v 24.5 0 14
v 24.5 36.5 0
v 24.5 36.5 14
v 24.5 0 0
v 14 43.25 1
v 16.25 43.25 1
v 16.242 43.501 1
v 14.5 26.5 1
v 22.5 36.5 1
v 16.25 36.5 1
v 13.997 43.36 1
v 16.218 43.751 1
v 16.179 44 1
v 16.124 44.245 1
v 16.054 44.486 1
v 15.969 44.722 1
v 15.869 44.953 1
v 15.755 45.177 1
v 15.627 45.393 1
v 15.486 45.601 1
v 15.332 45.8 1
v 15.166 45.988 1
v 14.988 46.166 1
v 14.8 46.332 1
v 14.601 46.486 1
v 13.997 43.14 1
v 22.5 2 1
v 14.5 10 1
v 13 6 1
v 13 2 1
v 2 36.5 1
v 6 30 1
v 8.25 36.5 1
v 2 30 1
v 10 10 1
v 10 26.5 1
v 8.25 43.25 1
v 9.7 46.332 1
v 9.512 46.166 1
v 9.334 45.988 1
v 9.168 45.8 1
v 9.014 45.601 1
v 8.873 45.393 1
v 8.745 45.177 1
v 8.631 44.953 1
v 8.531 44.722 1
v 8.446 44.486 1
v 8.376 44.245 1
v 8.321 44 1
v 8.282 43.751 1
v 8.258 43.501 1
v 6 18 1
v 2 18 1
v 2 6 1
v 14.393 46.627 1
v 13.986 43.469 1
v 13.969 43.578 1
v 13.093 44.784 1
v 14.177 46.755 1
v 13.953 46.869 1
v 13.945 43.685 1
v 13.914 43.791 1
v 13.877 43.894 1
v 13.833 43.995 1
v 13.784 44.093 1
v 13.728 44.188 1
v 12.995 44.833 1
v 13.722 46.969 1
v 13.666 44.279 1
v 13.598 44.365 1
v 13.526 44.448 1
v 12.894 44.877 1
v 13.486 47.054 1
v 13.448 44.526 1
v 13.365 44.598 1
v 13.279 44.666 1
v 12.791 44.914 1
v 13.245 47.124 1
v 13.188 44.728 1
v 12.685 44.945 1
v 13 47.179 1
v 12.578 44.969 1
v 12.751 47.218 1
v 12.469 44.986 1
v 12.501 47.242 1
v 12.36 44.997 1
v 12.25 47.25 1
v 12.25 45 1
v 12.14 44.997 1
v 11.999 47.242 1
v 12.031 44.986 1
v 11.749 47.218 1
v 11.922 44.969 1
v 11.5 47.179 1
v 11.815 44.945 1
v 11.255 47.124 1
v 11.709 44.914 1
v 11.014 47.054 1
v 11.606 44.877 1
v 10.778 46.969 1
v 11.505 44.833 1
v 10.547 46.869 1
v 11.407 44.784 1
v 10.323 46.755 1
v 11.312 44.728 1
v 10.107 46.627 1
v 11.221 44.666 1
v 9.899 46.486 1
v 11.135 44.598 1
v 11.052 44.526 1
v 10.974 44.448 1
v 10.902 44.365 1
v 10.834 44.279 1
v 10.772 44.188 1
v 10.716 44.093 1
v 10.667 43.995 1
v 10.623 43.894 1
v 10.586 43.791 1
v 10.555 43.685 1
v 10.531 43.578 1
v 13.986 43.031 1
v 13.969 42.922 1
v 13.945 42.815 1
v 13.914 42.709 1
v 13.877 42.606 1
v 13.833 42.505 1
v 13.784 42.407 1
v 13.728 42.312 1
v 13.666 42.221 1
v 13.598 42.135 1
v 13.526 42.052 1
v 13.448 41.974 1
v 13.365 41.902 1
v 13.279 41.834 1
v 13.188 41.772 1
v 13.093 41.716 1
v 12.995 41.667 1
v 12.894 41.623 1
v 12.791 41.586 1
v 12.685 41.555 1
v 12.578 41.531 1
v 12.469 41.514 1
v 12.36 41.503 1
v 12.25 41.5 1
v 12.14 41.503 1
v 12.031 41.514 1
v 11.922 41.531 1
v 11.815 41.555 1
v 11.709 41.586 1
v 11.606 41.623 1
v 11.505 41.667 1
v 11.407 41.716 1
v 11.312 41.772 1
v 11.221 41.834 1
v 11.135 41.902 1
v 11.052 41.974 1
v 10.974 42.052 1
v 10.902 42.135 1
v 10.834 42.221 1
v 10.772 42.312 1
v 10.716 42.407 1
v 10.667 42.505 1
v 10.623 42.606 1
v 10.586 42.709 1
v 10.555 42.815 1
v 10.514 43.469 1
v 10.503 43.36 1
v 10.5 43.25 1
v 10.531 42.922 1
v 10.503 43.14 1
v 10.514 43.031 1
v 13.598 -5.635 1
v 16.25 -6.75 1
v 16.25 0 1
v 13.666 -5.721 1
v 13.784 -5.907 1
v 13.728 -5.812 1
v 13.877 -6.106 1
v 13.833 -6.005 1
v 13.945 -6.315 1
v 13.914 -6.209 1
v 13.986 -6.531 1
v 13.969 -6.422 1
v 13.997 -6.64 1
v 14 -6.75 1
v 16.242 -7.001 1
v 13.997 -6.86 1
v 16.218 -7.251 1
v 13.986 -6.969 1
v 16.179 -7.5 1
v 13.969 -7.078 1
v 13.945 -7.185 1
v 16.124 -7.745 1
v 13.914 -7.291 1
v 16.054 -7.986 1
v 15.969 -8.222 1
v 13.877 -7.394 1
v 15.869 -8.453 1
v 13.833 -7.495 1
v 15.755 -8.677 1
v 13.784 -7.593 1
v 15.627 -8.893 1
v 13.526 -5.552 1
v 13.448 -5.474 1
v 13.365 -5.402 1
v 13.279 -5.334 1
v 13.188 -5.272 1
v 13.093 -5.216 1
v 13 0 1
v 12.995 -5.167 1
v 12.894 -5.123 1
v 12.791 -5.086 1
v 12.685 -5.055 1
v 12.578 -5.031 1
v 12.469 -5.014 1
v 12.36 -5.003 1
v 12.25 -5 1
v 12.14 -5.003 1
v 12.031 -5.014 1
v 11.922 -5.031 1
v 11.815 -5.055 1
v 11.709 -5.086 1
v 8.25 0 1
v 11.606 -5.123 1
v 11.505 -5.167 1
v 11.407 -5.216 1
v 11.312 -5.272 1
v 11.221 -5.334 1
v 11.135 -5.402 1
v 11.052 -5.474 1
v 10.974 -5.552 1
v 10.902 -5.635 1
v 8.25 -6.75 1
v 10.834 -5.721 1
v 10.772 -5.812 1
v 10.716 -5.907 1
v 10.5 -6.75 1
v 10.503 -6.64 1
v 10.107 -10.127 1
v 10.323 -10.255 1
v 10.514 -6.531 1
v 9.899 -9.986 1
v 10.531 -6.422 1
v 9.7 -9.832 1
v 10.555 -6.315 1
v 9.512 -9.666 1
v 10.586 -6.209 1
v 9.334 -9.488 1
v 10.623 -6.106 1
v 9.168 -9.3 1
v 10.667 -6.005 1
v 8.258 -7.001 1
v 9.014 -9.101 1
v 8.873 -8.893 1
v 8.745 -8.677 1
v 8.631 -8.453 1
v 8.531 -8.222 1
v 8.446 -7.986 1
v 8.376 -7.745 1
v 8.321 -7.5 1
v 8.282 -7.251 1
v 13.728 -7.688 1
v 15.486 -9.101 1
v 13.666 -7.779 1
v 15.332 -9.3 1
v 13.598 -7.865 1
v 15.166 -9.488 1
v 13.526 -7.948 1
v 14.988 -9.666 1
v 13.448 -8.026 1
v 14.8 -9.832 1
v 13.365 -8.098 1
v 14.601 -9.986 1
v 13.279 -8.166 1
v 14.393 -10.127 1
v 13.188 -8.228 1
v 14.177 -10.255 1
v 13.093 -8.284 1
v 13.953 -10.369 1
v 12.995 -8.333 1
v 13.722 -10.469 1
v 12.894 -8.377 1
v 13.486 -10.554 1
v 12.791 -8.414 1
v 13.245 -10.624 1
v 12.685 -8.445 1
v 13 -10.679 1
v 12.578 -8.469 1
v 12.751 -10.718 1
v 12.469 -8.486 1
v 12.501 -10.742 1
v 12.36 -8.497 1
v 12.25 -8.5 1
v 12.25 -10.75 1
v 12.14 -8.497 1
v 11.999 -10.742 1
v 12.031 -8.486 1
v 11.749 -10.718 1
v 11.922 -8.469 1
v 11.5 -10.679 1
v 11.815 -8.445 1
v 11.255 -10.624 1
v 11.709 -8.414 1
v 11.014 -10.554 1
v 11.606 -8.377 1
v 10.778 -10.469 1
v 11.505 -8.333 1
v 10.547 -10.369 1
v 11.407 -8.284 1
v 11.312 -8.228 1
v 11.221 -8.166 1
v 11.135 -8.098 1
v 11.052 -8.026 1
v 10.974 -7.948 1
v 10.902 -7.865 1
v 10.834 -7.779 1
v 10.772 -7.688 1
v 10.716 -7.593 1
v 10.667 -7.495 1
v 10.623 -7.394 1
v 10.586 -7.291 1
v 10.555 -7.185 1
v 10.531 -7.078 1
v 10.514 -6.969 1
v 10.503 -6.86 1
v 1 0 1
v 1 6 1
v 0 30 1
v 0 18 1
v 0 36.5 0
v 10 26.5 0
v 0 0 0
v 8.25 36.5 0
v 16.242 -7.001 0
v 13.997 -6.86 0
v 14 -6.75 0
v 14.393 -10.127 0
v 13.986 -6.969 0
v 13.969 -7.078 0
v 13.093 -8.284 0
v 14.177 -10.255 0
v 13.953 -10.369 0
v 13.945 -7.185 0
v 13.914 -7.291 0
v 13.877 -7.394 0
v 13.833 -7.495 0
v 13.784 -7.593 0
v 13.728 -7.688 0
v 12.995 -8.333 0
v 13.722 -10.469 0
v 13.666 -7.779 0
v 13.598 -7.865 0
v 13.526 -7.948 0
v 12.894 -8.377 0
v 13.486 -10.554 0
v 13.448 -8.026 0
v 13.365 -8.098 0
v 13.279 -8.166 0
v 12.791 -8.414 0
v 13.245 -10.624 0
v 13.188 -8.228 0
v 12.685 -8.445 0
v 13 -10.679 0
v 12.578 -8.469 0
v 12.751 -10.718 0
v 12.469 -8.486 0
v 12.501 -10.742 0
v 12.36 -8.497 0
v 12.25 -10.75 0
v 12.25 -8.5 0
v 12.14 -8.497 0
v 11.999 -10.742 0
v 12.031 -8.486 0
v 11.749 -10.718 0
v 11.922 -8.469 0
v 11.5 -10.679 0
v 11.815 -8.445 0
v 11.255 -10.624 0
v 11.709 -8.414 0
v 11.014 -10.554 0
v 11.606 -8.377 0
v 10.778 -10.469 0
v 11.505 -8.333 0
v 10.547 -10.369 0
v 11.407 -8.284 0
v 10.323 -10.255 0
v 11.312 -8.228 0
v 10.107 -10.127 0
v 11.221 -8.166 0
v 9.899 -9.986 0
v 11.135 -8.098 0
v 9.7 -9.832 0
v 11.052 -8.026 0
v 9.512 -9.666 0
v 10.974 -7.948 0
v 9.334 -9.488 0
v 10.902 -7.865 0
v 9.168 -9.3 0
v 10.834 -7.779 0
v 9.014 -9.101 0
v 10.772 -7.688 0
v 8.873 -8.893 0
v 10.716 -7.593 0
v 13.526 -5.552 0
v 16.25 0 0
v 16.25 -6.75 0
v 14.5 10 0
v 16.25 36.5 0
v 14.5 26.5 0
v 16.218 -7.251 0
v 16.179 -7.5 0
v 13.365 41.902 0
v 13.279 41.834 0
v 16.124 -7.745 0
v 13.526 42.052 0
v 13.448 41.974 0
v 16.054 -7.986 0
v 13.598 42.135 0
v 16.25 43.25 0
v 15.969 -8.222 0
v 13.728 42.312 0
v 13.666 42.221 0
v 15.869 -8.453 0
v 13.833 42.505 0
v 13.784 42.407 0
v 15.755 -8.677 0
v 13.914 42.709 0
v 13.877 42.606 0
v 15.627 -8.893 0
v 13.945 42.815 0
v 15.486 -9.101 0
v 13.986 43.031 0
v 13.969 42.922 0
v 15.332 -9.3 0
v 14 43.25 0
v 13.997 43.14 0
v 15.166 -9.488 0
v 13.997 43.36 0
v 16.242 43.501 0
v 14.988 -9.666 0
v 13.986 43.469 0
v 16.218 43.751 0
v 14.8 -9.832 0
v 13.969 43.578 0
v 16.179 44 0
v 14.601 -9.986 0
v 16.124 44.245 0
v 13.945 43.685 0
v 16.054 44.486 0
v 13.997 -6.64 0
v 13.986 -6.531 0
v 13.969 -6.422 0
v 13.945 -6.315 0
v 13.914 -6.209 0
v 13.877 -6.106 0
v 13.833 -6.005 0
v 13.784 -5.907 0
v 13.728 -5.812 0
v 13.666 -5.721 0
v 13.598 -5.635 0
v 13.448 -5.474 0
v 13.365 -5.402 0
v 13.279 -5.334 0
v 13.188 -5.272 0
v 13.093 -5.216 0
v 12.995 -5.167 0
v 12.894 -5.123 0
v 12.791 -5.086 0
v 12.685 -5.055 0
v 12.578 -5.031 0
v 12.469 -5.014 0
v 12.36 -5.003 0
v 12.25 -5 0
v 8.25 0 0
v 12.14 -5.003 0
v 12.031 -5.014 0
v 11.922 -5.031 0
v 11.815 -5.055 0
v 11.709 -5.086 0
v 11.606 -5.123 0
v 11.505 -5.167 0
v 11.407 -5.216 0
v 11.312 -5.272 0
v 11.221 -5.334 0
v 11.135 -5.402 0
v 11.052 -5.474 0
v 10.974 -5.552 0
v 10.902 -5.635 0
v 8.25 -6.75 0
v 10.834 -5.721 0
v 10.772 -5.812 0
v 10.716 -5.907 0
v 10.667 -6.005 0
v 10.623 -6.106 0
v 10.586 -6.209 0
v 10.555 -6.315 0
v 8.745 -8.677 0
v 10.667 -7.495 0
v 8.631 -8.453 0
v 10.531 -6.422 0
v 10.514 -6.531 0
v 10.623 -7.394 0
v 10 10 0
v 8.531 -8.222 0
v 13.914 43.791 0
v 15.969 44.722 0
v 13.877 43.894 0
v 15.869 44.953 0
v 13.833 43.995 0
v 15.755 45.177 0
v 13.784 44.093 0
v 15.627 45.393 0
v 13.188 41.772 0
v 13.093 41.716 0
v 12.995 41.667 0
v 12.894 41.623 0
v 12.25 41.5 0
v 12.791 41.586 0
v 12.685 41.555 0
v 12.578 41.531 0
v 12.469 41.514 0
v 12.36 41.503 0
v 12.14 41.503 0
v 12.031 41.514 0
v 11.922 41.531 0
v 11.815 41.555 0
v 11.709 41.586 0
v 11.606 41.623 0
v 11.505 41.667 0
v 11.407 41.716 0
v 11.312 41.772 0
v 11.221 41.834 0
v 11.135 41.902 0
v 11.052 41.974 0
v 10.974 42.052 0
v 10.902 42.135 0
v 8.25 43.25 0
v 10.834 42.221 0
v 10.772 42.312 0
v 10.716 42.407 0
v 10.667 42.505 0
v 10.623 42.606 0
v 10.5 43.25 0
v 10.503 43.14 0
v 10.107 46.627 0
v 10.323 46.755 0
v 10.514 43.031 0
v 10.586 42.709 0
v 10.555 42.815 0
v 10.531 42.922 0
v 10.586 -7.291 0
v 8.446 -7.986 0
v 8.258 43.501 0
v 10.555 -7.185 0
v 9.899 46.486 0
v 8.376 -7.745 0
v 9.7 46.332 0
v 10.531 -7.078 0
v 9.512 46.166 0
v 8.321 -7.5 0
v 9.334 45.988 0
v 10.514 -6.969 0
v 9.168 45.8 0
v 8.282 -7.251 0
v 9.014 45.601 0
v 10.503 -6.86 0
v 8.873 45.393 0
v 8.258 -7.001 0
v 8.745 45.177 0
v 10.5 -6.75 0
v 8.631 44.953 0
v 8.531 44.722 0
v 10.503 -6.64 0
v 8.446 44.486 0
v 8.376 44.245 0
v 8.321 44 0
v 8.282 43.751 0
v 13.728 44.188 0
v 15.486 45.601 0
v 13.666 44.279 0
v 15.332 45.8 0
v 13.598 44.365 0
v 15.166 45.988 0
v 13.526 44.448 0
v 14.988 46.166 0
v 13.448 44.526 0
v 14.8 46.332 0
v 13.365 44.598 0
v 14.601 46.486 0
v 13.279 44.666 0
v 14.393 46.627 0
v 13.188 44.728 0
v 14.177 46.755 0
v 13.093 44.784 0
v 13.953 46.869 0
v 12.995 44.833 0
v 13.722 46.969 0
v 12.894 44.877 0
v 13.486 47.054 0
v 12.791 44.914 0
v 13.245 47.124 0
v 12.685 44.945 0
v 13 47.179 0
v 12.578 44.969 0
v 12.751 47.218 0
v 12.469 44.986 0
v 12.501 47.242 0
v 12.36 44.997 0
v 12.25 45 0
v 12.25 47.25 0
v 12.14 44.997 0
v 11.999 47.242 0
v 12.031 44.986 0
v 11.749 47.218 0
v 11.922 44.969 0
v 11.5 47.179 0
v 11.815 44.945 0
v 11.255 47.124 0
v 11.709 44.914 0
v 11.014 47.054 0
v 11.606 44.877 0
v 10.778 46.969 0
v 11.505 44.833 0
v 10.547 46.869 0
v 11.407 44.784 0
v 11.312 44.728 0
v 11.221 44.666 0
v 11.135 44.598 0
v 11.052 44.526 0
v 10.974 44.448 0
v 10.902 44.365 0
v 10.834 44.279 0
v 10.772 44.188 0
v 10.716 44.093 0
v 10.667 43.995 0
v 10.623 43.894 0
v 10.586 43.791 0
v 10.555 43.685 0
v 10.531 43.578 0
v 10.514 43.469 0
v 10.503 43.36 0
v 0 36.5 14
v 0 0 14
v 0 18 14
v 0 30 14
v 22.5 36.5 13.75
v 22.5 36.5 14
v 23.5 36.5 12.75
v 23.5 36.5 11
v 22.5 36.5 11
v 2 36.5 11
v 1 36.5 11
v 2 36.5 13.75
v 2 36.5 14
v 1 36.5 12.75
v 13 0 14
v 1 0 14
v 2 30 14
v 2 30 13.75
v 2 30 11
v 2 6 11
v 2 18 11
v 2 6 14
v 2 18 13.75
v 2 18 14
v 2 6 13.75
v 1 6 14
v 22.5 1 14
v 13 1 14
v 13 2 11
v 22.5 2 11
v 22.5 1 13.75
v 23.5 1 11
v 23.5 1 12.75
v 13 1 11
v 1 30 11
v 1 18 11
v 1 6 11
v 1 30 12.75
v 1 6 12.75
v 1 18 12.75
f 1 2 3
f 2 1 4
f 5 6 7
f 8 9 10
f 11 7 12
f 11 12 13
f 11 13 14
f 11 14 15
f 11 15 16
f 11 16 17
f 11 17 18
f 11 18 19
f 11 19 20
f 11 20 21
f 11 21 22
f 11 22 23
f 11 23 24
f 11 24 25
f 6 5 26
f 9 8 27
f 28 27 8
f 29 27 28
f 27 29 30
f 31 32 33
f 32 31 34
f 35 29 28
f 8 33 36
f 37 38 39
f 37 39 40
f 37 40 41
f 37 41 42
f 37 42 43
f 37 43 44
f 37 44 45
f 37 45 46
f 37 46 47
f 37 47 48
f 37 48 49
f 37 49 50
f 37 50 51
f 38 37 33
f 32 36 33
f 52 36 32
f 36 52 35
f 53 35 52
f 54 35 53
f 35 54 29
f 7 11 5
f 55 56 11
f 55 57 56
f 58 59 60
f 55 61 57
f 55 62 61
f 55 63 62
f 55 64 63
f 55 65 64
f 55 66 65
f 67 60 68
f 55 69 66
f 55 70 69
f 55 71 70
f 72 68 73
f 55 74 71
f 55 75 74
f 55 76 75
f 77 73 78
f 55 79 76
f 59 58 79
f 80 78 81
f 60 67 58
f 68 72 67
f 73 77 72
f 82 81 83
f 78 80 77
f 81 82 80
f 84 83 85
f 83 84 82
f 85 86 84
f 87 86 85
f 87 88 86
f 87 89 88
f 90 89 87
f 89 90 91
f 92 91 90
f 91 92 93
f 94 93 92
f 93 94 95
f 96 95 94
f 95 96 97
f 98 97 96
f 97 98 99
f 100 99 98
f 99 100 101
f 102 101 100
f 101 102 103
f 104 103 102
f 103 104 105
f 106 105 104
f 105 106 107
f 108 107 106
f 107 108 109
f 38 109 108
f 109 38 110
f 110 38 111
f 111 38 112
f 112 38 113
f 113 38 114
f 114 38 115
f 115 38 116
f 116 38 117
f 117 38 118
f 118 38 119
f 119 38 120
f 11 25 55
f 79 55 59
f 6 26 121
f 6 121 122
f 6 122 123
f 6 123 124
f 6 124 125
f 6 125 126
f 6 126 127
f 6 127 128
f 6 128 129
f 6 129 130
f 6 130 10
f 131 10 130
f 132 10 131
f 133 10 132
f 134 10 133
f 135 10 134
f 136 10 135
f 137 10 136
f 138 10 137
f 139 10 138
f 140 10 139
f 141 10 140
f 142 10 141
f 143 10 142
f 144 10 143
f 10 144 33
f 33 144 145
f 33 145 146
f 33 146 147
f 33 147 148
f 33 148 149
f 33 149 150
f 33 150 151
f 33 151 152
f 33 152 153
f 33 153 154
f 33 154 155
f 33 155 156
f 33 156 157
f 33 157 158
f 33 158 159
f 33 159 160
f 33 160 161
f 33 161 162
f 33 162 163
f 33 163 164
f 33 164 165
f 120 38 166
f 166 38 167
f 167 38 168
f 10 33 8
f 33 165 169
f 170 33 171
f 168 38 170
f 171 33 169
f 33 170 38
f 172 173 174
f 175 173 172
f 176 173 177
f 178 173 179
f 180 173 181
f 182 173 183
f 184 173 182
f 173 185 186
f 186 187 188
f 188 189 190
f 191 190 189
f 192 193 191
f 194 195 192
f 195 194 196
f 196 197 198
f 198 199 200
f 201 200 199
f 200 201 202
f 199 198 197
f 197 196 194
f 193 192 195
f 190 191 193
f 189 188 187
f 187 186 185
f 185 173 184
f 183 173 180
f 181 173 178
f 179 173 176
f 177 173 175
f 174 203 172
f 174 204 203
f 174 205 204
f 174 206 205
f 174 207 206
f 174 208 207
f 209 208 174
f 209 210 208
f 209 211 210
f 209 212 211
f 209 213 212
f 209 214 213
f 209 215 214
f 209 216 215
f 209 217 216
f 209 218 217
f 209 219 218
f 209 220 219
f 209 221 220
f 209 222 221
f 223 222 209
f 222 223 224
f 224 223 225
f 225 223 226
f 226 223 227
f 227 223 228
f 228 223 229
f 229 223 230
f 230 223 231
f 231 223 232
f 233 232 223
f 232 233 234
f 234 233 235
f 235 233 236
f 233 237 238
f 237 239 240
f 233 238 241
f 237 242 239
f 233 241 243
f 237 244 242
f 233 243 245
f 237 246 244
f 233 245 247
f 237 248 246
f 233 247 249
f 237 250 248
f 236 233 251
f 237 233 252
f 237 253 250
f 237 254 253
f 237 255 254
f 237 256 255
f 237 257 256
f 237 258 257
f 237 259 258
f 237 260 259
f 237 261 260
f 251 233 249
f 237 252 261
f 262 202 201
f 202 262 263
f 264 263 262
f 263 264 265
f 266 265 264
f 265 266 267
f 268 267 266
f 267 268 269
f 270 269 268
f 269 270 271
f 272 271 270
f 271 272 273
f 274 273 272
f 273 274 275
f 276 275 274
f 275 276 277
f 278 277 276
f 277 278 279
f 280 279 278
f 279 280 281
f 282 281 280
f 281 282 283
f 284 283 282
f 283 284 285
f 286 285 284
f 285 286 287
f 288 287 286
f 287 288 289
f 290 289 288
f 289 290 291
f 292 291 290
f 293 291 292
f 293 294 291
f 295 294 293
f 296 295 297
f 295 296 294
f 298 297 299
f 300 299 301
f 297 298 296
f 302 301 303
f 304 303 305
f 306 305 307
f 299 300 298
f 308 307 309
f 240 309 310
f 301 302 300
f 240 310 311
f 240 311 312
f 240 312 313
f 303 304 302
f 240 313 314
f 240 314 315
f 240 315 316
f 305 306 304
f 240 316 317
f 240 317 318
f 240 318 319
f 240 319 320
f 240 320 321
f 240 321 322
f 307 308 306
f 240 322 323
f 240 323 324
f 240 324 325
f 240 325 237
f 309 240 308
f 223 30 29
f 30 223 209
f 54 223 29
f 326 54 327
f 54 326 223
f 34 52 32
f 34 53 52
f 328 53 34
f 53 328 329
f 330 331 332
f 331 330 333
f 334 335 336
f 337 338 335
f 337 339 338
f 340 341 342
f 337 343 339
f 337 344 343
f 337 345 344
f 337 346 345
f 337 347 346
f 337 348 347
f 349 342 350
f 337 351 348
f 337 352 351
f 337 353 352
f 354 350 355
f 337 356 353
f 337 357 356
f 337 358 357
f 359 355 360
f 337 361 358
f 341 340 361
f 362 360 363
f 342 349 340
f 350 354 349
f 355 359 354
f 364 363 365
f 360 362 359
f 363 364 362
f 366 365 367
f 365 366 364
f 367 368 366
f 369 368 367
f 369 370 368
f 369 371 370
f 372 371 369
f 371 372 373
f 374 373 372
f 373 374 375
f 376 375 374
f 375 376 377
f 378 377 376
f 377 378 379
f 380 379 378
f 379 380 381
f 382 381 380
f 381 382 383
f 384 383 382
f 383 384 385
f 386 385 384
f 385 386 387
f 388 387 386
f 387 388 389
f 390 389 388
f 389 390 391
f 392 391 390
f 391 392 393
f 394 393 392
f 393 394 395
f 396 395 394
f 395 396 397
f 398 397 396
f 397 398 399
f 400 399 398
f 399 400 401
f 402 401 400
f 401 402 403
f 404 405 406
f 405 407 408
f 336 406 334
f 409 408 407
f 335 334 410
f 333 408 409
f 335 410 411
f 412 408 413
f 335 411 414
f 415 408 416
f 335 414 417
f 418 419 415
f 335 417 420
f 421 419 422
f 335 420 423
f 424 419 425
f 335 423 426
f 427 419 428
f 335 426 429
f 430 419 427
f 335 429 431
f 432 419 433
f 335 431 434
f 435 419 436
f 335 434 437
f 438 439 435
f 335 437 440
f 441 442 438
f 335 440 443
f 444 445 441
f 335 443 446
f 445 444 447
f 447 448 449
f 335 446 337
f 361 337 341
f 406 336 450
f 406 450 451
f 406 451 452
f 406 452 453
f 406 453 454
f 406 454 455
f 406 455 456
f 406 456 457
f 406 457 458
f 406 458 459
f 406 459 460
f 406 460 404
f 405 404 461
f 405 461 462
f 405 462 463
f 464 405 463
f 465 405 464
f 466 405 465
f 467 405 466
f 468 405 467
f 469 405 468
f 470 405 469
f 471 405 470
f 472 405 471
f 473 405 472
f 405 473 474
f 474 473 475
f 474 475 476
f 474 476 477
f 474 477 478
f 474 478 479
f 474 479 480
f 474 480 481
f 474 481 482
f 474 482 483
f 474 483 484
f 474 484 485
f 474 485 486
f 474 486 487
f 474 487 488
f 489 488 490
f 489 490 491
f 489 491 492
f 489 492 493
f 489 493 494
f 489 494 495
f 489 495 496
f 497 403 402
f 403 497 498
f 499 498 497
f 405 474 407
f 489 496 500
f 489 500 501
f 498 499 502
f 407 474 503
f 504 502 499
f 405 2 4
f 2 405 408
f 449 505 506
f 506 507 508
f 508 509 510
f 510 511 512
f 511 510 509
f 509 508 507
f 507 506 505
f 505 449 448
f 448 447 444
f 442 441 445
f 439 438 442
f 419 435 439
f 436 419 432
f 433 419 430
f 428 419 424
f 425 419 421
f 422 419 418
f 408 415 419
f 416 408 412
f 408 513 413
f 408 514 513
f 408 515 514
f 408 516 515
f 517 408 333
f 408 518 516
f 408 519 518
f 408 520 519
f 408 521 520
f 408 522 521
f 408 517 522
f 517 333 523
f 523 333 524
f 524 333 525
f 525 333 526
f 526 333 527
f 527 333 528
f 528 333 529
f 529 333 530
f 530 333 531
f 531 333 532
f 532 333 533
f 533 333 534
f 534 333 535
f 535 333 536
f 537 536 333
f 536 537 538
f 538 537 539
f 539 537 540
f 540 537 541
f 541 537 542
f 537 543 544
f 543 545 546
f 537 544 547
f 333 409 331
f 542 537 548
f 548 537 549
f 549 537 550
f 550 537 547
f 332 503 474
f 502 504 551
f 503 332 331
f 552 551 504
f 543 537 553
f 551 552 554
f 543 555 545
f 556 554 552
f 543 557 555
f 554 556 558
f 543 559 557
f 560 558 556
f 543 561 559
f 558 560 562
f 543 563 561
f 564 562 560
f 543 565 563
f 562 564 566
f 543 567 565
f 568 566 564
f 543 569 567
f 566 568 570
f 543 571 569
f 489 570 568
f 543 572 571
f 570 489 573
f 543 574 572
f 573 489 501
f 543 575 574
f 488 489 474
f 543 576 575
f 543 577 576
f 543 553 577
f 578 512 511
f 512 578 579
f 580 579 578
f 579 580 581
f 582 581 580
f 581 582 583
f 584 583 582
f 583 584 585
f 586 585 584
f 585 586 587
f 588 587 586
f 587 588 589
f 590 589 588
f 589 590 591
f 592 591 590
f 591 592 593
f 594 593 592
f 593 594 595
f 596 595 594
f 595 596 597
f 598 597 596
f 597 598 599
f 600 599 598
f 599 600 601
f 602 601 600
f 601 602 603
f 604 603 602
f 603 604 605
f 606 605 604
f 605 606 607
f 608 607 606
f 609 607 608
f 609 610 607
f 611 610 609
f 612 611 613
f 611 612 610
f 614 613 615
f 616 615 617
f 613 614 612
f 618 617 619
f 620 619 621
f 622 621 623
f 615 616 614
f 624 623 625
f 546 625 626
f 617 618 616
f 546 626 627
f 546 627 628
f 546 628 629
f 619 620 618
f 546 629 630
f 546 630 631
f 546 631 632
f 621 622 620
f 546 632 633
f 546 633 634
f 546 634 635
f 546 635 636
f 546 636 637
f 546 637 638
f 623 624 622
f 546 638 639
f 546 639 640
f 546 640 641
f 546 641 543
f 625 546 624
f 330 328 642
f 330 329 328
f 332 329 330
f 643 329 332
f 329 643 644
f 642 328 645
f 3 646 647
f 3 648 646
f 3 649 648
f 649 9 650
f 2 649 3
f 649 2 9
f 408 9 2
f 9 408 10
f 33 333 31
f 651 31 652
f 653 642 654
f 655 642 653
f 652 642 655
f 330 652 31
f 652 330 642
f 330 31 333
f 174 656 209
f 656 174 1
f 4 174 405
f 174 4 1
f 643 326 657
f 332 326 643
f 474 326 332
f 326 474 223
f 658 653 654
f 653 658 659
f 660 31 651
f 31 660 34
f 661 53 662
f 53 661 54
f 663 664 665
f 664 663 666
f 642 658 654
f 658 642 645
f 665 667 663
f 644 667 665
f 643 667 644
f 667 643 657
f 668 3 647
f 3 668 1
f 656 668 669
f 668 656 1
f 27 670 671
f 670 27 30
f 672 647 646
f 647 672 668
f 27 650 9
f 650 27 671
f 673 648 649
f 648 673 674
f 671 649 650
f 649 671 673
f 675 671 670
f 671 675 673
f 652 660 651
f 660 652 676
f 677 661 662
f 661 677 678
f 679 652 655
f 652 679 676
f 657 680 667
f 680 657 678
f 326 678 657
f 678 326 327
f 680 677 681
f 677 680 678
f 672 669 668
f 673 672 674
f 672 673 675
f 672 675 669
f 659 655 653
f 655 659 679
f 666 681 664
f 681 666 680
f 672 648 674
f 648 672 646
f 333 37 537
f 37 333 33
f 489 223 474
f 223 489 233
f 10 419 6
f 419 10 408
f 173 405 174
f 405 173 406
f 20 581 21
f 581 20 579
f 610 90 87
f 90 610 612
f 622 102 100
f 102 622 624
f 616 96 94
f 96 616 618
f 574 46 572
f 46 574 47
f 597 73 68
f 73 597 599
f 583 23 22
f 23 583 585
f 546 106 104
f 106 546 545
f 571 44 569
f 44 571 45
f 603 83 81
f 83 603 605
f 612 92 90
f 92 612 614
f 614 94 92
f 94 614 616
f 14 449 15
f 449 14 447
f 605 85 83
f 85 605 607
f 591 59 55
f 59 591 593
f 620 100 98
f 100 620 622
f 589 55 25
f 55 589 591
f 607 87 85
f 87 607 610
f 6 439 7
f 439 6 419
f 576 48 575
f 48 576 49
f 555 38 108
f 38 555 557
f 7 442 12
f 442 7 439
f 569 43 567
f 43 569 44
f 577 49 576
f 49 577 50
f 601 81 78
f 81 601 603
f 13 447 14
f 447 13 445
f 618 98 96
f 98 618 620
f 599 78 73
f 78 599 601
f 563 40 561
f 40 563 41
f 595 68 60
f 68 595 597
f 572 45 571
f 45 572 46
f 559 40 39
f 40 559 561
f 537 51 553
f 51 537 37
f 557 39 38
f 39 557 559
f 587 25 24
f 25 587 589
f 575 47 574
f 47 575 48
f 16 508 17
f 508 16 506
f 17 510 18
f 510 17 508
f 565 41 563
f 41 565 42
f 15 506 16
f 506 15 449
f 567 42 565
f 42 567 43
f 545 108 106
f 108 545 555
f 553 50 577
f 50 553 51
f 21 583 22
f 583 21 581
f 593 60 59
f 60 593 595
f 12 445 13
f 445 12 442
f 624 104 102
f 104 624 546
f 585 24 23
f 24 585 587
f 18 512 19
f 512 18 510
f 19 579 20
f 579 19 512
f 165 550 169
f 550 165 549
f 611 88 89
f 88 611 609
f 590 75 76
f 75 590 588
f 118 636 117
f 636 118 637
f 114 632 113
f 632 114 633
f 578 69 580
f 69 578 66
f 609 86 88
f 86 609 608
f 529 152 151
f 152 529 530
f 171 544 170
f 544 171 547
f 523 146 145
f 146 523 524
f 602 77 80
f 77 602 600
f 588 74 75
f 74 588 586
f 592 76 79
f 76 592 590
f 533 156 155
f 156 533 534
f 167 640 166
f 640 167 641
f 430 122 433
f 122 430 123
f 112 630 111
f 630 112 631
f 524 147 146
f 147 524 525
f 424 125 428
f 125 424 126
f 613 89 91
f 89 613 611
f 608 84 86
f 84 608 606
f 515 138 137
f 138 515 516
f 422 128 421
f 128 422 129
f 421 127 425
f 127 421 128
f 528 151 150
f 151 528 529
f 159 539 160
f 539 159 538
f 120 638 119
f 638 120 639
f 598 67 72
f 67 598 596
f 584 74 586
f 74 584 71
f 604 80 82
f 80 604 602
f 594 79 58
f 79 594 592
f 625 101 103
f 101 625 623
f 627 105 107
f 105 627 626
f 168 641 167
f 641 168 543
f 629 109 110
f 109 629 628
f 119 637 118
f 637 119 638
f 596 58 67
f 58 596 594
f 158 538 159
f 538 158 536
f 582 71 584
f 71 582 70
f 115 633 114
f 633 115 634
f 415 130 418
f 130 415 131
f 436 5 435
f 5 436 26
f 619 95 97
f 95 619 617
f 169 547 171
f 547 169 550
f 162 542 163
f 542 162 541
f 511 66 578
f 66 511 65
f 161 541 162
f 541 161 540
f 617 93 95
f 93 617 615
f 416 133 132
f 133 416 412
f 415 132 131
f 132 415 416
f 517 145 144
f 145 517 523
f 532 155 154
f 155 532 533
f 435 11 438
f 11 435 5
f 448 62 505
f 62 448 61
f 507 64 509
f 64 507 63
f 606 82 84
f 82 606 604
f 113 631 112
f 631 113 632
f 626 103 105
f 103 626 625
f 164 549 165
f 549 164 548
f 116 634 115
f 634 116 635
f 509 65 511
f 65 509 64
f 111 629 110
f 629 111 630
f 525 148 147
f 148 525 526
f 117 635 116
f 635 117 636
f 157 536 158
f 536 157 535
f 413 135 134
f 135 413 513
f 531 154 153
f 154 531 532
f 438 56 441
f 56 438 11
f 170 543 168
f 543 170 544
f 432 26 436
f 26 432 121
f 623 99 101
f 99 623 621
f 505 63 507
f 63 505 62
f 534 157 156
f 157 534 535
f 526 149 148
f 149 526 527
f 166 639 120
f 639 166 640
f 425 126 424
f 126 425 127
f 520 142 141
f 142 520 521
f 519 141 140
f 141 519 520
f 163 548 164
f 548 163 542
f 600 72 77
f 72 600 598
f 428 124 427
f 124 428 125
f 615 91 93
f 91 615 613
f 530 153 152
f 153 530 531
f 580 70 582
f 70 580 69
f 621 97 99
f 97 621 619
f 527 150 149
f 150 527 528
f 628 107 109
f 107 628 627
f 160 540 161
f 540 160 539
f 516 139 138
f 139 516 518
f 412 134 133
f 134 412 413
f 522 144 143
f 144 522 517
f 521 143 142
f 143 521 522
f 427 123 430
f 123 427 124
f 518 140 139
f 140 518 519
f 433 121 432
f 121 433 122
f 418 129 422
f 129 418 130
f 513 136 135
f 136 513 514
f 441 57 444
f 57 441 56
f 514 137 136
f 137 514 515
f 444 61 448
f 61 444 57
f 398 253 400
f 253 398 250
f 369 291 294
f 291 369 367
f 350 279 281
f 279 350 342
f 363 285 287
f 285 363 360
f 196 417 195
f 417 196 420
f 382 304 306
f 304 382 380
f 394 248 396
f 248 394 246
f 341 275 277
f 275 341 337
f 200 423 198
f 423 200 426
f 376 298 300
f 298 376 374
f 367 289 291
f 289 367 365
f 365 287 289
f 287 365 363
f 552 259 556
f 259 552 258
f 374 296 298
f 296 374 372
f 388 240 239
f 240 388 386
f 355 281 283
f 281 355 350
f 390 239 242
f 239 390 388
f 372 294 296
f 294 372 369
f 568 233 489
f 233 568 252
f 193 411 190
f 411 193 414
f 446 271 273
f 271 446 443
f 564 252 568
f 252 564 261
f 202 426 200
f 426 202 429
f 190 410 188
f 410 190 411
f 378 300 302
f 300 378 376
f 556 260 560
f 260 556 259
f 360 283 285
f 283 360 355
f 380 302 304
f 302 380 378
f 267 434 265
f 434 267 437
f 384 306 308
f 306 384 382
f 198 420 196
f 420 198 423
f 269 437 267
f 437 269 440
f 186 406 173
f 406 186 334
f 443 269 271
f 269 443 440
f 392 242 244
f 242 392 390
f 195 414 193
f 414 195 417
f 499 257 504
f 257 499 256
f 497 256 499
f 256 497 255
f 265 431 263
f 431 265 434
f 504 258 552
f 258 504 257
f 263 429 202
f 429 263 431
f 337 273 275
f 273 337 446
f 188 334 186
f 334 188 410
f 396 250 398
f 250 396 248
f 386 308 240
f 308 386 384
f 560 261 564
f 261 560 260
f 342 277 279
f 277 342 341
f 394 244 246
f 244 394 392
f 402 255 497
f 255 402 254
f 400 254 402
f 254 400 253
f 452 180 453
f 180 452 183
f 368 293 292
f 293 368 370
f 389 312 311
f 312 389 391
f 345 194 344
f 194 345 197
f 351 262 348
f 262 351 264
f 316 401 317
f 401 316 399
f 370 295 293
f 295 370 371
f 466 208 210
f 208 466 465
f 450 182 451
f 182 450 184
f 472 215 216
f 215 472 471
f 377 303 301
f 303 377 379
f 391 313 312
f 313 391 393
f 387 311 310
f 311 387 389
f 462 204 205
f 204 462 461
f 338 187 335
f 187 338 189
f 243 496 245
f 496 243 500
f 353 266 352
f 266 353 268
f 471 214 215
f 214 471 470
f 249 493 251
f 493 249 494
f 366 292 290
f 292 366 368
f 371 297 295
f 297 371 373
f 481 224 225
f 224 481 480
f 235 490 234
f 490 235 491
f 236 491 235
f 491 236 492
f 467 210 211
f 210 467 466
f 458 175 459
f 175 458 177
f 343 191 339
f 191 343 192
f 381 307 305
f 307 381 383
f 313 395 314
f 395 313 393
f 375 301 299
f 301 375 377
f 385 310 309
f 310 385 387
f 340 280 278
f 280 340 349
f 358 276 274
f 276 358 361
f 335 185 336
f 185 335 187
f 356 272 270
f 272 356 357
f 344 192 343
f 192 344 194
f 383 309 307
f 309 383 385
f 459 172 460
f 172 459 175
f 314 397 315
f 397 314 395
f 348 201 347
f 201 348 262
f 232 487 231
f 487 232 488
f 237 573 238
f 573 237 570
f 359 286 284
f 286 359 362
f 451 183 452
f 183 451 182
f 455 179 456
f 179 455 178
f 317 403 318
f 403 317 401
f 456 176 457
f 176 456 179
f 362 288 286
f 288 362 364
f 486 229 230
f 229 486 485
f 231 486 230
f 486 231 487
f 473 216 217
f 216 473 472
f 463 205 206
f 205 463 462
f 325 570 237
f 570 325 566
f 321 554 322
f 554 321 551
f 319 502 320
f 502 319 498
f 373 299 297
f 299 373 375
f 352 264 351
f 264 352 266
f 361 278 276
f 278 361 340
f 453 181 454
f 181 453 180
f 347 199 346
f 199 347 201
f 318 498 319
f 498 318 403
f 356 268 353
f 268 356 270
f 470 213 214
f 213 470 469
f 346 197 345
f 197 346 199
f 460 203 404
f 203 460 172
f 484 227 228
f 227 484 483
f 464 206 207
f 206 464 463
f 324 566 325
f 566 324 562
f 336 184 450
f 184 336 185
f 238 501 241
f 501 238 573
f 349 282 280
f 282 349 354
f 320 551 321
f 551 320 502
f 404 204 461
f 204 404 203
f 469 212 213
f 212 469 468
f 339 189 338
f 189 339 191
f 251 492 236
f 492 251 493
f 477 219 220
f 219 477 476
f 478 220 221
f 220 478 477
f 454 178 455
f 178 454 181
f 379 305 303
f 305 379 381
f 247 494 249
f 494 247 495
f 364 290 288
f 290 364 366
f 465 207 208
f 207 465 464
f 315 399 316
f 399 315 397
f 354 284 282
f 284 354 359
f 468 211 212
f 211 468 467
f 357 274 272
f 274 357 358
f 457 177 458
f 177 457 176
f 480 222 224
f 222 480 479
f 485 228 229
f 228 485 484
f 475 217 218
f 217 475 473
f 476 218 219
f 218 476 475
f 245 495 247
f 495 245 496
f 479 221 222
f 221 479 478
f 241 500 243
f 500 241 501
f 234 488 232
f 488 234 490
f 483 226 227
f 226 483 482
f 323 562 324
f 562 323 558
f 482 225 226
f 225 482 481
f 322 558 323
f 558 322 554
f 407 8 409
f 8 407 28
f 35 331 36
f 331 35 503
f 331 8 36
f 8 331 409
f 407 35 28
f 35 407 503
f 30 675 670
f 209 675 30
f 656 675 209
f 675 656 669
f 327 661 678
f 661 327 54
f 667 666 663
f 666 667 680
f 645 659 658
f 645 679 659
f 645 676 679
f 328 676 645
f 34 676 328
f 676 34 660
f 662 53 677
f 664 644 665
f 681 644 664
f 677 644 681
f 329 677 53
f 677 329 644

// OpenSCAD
/* pcb_box_slide_with_tabs.scad
 * By Nicholas C Lewis - Jan 1, 2011
 * http://www.thingiverse.com/thing:5396 
 *
 * derived from pcb_box_slide.scad 
 *     Parametric, open PCB-box (slide-in) by chlunde
 *     http://www.thingiverse.com/thing:4071
 *
 * CHANGES
 * - adjusted to fit Arduino Mega
 * - added mounting tabs
 * - turned off cutouts
 * - adjusted bottom cutout size
 */


$fn=100;

pcb_width = 22.5;
pcb_length = 34.5;
pcb_height =1.75;
slisse = 1;

pcb_bottom_margin = 10;
wall_width_thick = 2;
wall_width = wall_width_thick-slisse;
box_height = 14;

// Tab and Mounting Parameters
tab_hole_radius=3.5/2;
tab_outer_radius=8/2;
tab_mount_width = 0;		// X - center to center of mounting hole
tab_mount_length = 50;		// Y - center to center of mounting hole



module tab() {
	difference(){
		union() {
			translate([-tab_outer_radius,-tab_outer_radius,0])
			cube([tab_outer_radius,2*tab_outer_radius,wall_width]);
			translate([-tab_outer_radius,0,0])
				cylinder(r=tab_outer_radius, h = wall_width);
		}
		translate([-tab_outer_radius,0,0])
		cylinder(r= tab_hole_radius, h = wall_width+3,center=true);
	}

}

module JDtab(X, Y) {
	rotate(atan(Y / X), [0,0,1])
	difference(){
		union() {
			translate([0,-tab_outer_radius,0])
			cube([sqrt(X*X+Y*Y),2*tab_outer_radius,wall_width]);
			translate([sqrt(X*X+Y*Y),0,0])
				cylinder(r=tab_outer_radius, h = wall_width);
		}
		translate([sqrt(X*X+Y*Y),0,0])
		cylinder(r= tab_hole_radius, h = wall_width+3,center=true);
	}

}

module box() {
  union() {
    cube([pcb_width + 2*wall_width, pcb_length + 2*wall_width, wall_width]);

    cube([wall_width_thick, pcb_length + 2*wall_width, box_height]);

    cube([pcb_width + 2*wall_width, wall_width_thick, box_height]);

    %translate([0, pcb_length+wall_width, 0])
      cube([pcb_width + 2*wall_width,wall_width,box_height]);
    translate([pcb_width + wall_width - slisse,0,0])
      cube([wall_width_thick, pcb_length + 2*wall_width, box_height]);
  }

// ORIGINAL Tabs
//comment out this part to remove tabs
// for(i=[5,(pcb_length + 2*wall_width)/2,pcb_length + 2*wall_width-5]){
//	translate([0,i,0])tab();
//	translate([pcb_width + 2*wall_width,i,0])mirror()tab();
// }

// JamesDavid's Tabs
  translate([(pcb_width + 2*wall_width)/2, (pcb_length + 2*wall_width)/2, 0]) {

// If you want tabs on the Left leave uncommented
   JDtab(tab_mount_width/2, tab_mount_length/2);
   JDtab(-tab_mount_width/2, tab_mount_length/2);

// If you want tabs on the Right leave uncommented
   mirror()JDtab(tab_mount_width/2, tab_mount_length/2);
   mirror()JDtab(-tab_mount_width/2, tab_mount_length/2);
  }
}

module pcb() {
  translate([wall_width, wall_width, wall_width + pcb_bottom_margin])
    cube([pcb_width,pcb_length + wall_width + 0.1,pcb_height]);
  translate([wall_width, wall_width, wall_width + pcb_bottom_margin+pcb_height])rotate([0,45,0])
    cube([pcb_height,pcb_length + wall_width + 0.1,pcb_height]);
  translate([wall_width+pcb_width-2*cos(45)*pcb_height, wall_width, wall_width + pcb_bottom_margin+pcb_height])rotate([0,45,0])
    cube([pcb_height,pcb_length + wall_width + 0.1,pcb_height]);
  translate([wall_width_thick, wall_width, wall_width + pcb_bottom_margin])
    cube([pcb_width-2*slisse,pcb_length + wall_width + 0.1,box_height]);

}



module holes() {
  *translate([wall_width + pcb_width/2, wall_width_thick + 0.1, pcb_width/2+wall_width])
    rotate(a=90,v=[1,0,0])
      cylinder(r=pcb_width/2, h=wall_width_thick + 0.2);

  *translate([-0.1, wall_width + pcb_length/2, pcb_length/2 + wall_width])
    rotate(a=90,v=[0,1,0])
      cylinder(r=pcb_length/2, h=wall_width_thick + 0.2);

  *translate([pcb_width + wall_width - slisse - 0.1, wall_width + pcb_length/2, pcb_length/2 + wall_width])
    rotate(a=90,v=[0,1,0])
      cylinder(r=pcb_length/2, h=wall_width_thick + 0.2);

 * translate([pcb_width/2 + wall_width, wall_width + pcb_length/2, -0.1])
    rotate(a=0,v=[0,1,0])
      cylinder(r=min(pcb_length,pcb_width)/2 - wall_width/2, h=wall_width_thick + 0.2);
   
  inner_margin = 9;
  translate([inner_margin +wall_width, inner_margin+wall_width, -0.1])
    cube([pcb_width-inner_margin*2,pcb_length -inner_margin*2,wall_width + 0.2]);
}

difference() {
 box();
 pcb();
 holes();
 translate([wall_width,0, wall_width])cube([12,6,16]);
 #translate([0,18, wall_width])cube([6,12,16]);

 
//  JDtab(tab_mount_width/2, tab_mount_length/2);

}

* color([1,0,0])
  translate([pcb_width/2 + wall_width, wall_width + pcb_length/2, -0.1])
    rotate(a=0,v=[0,1,0])
      cylinder(r=min(pcb_length,pcb_width)/2 - wall_width/2, h=wall_width_thick + 0.2);
